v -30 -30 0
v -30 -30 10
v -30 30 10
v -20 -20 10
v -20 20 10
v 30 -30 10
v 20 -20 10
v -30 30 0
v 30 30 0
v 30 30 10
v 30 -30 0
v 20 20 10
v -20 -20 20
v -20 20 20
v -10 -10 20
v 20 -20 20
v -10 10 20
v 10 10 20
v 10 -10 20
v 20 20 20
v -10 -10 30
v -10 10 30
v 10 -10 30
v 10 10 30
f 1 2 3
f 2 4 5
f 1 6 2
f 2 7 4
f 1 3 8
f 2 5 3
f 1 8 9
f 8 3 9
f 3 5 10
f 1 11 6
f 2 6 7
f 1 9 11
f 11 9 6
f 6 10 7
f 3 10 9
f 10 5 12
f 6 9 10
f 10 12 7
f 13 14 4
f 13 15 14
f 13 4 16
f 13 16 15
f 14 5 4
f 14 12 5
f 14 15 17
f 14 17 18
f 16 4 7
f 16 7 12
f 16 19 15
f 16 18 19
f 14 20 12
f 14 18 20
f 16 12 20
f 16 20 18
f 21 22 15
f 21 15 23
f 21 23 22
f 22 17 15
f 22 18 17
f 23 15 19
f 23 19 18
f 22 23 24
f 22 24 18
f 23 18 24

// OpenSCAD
// 1段目（底面）
translate([-30, -30, 0])
    cube([60, 60, 10]);

// 2段目（中間）
translate([-20, -20, 10])
    cube([40, 40, 10]);

// 3段目（最上段）
translate([-10, -10, 20])
    cube([20, 20, 10]);
